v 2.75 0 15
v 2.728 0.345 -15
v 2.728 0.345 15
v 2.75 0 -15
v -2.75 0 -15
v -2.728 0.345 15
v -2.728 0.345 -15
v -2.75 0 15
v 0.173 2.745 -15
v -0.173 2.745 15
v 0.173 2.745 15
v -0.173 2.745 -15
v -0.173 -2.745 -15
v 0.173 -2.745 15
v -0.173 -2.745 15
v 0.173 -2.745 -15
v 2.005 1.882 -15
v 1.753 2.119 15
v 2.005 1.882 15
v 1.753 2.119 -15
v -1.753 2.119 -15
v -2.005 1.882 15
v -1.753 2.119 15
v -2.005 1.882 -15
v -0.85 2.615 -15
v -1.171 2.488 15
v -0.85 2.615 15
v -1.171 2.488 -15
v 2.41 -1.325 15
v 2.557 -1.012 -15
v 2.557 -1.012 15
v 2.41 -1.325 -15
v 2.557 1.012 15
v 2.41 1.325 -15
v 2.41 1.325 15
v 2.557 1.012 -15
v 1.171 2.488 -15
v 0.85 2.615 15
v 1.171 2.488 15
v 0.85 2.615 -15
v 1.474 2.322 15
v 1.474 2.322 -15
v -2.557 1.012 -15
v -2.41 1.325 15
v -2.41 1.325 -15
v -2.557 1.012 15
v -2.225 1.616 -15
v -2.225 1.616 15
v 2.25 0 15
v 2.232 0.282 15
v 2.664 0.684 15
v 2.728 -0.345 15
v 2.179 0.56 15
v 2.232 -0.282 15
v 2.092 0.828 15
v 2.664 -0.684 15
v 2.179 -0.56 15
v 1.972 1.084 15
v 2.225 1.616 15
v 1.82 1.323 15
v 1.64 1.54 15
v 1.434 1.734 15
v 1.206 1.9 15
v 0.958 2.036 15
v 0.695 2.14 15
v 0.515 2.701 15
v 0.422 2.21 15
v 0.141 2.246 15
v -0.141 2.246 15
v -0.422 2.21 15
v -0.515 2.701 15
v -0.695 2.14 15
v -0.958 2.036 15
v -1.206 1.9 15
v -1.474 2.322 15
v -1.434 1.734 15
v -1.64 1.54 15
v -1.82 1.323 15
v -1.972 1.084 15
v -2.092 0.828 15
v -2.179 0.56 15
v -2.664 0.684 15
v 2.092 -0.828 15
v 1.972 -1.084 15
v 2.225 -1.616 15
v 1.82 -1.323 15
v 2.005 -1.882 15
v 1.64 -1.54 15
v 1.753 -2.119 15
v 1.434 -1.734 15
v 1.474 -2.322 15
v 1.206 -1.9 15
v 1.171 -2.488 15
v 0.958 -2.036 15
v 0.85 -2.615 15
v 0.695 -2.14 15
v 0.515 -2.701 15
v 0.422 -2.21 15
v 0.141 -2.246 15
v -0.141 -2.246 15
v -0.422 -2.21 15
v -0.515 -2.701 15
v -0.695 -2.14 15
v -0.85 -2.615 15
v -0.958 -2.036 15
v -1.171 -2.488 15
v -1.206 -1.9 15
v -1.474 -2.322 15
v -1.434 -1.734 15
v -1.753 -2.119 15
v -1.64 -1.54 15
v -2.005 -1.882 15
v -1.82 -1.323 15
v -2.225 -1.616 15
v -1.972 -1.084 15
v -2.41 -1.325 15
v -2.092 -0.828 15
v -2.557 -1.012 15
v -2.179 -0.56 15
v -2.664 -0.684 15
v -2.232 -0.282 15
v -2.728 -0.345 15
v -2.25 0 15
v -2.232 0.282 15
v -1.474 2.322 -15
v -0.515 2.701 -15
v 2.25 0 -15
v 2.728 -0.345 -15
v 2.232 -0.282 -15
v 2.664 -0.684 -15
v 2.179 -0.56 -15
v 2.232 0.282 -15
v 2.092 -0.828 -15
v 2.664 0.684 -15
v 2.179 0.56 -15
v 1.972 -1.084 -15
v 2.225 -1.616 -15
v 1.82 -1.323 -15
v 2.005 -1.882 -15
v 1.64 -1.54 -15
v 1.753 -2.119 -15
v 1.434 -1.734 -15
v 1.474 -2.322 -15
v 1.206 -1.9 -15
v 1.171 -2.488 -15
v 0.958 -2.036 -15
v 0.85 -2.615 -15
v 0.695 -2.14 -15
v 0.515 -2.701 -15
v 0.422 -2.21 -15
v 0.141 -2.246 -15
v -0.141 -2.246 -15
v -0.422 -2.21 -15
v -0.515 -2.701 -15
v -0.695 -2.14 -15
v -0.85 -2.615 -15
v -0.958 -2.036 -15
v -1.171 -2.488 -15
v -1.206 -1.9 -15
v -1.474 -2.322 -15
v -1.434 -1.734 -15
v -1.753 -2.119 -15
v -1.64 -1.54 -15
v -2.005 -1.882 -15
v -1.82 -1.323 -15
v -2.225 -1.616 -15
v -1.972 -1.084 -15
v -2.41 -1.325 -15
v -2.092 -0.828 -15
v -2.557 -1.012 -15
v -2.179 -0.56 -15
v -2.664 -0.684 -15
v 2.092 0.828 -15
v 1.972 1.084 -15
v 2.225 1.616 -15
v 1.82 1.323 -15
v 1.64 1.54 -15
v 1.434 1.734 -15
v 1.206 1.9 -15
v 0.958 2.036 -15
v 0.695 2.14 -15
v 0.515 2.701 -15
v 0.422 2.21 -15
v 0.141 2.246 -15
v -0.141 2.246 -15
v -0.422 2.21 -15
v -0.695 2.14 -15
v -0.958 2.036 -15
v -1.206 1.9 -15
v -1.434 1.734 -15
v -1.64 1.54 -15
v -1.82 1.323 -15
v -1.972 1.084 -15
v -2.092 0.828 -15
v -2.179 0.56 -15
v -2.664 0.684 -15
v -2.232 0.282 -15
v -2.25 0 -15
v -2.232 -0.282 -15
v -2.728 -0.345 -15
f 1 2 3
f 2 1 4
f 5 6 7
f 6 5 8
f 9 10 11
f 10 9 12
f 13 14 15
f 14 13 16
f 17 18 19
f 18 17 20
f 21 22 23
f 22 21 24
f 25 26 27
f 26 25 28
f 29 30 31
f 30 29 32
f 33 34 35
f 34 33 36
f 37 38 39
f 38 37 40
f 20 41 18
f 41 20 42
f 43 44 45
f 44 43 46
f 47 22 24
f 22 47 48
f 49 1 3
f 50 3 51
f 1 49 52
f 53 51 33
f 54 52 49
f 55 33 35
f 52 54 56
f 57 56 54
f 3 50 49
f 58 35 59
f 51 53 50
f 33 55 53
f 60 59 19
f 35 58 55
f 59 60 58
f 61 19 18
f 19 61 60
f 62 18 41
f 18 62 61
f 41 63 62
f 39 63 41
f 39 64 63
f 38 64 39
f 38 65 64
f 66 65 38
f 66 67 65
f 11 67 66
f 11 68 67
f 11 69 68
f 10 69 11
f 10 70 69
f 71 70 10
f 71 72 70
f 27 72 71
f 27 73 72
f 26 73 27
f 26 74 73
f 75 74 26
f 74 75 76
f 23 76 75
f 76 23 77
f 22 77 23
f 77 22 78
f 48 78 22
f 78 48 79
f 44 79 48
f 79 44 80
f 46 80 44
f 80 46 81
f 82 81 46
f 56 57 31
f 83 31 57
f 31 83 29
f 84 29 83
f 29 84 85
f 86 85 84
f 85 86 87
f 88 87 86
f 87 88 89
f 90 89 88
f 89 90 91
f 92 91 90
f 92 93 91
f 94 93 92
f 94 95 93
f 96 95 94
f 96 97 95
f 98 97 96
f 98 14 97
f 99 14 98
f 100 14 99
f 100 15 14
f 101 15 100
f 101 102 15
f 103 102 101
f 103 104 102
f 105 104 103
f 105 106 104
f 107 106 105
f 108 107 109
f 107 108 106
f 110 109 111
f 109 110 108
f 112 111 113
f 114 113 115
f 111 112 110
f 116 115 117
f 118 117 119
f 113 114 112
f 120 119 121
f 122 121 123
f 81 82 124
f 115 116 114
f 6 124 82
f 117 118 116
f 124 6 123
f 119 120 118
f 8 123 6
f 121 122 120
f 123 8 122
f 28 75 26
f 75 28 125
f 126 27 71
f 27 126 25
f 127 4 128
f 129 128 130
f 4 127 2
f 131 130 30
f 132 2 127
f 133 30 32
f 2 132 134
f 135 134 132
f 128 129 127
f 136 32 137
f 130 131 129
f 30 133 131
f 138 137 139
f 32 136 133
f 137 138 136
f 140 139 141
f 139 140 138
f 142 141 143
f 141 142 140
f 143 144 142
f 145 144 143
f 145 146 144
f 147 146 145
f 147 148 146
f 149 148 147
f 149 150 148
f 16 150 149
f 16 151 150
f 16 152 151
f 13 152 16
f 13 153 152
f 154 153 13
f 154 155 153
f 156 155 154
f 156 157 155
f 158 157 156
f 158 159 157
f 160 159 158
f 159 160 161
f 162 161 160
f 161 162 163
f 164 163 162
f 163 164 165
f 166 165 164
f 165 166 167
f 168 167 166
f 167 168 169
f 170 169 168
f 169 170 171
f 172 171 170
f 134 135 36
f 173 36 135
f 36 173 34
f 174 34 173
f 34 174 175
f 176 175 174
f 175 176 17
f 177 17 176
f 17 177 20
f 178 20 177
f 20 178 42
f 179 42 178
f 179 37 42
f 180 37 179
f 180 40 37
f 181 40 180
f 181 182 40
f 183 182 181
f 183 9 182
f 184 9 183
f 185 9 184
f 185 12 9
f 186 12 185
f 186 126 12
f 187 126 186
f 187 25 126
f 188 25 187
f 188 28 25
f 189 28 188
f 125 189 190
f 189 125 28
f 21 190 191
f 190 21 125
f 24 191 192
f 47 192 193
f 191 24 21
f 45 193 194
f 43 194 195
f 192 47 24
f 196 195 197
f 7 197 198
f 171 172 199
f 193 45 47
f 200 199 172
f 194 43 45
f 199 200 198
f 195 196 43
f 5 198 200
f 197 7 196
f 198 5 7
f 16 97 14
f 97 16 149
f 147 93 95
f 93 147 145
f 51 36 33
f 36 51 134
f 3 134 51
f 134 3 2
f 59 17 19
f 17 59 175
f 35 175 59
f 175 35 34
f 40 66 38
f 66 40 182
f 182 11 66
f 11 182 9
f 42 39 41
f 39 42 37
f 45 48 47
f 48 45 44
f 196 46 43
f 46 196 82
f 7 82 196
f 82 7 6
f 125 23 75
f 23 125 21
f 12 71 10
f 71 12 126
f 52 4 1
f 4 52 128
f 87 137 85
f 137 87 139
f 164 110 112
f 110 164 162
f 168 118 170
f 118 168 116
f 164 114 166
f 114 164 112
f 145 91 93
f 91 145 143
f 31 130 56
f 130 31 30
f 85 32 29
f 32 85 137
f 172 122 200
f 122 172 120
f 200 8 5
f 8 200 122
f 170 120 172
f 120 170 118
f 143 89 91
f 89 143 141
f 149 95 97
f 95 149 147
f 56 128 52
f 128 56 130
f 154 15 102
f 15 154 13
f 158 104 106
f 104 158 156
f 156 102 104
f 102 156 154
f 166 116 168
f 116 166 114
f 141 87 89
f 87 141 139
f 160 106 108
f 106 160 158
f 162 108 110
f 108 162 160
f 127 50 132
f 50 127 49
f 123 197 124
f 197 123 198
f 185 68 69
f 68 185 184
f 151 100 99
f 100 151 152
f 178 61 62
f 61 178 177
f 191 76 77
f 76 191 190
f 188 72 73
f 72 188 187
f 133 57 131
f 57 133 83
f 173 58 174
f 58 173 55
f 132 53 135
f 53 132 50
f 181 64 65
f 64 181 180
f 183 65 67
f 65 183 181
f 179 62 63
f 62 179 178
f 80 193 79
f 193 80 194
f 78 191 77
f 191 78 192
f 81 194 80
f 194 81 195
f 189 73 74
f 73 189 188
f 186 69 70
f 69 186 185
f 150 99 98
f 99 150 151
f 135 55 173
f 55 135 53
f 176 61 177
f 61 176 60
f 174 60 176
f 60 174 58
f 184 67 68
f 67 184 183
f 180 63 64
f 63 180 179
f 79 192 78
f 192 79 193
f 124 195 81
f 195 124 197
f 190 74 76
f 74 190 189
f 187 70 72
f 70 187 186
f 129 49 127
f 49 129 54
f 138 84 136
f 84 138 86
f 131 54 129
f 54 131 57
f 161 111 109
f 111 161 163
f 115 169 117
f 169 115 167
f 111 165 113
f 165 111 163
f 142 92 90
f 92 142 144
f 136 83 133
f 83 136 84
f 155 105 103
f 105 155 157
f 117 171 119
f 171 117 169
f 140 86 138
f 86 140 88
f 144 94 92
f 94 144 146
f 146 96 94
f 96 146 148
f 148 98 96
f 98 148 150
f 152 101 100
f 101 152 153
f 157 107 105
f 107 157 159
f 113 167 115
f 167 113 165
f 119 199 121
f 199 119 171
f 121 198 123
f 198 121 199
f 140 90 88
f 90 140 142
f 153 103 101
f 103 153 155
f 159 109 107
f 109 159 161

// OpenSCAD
$fn = 50;


difference() {
	union() {
		translate(v = [0, 0, -15.0000000000]) {
			cylinder(h = 30, r = 2.7500000000);
		}
	}
	union() {
		translate(v = [0, 0, -100.0000000000]) {
			cylinder(h = 200, r = 2.2500000000);
		}
	}
}
